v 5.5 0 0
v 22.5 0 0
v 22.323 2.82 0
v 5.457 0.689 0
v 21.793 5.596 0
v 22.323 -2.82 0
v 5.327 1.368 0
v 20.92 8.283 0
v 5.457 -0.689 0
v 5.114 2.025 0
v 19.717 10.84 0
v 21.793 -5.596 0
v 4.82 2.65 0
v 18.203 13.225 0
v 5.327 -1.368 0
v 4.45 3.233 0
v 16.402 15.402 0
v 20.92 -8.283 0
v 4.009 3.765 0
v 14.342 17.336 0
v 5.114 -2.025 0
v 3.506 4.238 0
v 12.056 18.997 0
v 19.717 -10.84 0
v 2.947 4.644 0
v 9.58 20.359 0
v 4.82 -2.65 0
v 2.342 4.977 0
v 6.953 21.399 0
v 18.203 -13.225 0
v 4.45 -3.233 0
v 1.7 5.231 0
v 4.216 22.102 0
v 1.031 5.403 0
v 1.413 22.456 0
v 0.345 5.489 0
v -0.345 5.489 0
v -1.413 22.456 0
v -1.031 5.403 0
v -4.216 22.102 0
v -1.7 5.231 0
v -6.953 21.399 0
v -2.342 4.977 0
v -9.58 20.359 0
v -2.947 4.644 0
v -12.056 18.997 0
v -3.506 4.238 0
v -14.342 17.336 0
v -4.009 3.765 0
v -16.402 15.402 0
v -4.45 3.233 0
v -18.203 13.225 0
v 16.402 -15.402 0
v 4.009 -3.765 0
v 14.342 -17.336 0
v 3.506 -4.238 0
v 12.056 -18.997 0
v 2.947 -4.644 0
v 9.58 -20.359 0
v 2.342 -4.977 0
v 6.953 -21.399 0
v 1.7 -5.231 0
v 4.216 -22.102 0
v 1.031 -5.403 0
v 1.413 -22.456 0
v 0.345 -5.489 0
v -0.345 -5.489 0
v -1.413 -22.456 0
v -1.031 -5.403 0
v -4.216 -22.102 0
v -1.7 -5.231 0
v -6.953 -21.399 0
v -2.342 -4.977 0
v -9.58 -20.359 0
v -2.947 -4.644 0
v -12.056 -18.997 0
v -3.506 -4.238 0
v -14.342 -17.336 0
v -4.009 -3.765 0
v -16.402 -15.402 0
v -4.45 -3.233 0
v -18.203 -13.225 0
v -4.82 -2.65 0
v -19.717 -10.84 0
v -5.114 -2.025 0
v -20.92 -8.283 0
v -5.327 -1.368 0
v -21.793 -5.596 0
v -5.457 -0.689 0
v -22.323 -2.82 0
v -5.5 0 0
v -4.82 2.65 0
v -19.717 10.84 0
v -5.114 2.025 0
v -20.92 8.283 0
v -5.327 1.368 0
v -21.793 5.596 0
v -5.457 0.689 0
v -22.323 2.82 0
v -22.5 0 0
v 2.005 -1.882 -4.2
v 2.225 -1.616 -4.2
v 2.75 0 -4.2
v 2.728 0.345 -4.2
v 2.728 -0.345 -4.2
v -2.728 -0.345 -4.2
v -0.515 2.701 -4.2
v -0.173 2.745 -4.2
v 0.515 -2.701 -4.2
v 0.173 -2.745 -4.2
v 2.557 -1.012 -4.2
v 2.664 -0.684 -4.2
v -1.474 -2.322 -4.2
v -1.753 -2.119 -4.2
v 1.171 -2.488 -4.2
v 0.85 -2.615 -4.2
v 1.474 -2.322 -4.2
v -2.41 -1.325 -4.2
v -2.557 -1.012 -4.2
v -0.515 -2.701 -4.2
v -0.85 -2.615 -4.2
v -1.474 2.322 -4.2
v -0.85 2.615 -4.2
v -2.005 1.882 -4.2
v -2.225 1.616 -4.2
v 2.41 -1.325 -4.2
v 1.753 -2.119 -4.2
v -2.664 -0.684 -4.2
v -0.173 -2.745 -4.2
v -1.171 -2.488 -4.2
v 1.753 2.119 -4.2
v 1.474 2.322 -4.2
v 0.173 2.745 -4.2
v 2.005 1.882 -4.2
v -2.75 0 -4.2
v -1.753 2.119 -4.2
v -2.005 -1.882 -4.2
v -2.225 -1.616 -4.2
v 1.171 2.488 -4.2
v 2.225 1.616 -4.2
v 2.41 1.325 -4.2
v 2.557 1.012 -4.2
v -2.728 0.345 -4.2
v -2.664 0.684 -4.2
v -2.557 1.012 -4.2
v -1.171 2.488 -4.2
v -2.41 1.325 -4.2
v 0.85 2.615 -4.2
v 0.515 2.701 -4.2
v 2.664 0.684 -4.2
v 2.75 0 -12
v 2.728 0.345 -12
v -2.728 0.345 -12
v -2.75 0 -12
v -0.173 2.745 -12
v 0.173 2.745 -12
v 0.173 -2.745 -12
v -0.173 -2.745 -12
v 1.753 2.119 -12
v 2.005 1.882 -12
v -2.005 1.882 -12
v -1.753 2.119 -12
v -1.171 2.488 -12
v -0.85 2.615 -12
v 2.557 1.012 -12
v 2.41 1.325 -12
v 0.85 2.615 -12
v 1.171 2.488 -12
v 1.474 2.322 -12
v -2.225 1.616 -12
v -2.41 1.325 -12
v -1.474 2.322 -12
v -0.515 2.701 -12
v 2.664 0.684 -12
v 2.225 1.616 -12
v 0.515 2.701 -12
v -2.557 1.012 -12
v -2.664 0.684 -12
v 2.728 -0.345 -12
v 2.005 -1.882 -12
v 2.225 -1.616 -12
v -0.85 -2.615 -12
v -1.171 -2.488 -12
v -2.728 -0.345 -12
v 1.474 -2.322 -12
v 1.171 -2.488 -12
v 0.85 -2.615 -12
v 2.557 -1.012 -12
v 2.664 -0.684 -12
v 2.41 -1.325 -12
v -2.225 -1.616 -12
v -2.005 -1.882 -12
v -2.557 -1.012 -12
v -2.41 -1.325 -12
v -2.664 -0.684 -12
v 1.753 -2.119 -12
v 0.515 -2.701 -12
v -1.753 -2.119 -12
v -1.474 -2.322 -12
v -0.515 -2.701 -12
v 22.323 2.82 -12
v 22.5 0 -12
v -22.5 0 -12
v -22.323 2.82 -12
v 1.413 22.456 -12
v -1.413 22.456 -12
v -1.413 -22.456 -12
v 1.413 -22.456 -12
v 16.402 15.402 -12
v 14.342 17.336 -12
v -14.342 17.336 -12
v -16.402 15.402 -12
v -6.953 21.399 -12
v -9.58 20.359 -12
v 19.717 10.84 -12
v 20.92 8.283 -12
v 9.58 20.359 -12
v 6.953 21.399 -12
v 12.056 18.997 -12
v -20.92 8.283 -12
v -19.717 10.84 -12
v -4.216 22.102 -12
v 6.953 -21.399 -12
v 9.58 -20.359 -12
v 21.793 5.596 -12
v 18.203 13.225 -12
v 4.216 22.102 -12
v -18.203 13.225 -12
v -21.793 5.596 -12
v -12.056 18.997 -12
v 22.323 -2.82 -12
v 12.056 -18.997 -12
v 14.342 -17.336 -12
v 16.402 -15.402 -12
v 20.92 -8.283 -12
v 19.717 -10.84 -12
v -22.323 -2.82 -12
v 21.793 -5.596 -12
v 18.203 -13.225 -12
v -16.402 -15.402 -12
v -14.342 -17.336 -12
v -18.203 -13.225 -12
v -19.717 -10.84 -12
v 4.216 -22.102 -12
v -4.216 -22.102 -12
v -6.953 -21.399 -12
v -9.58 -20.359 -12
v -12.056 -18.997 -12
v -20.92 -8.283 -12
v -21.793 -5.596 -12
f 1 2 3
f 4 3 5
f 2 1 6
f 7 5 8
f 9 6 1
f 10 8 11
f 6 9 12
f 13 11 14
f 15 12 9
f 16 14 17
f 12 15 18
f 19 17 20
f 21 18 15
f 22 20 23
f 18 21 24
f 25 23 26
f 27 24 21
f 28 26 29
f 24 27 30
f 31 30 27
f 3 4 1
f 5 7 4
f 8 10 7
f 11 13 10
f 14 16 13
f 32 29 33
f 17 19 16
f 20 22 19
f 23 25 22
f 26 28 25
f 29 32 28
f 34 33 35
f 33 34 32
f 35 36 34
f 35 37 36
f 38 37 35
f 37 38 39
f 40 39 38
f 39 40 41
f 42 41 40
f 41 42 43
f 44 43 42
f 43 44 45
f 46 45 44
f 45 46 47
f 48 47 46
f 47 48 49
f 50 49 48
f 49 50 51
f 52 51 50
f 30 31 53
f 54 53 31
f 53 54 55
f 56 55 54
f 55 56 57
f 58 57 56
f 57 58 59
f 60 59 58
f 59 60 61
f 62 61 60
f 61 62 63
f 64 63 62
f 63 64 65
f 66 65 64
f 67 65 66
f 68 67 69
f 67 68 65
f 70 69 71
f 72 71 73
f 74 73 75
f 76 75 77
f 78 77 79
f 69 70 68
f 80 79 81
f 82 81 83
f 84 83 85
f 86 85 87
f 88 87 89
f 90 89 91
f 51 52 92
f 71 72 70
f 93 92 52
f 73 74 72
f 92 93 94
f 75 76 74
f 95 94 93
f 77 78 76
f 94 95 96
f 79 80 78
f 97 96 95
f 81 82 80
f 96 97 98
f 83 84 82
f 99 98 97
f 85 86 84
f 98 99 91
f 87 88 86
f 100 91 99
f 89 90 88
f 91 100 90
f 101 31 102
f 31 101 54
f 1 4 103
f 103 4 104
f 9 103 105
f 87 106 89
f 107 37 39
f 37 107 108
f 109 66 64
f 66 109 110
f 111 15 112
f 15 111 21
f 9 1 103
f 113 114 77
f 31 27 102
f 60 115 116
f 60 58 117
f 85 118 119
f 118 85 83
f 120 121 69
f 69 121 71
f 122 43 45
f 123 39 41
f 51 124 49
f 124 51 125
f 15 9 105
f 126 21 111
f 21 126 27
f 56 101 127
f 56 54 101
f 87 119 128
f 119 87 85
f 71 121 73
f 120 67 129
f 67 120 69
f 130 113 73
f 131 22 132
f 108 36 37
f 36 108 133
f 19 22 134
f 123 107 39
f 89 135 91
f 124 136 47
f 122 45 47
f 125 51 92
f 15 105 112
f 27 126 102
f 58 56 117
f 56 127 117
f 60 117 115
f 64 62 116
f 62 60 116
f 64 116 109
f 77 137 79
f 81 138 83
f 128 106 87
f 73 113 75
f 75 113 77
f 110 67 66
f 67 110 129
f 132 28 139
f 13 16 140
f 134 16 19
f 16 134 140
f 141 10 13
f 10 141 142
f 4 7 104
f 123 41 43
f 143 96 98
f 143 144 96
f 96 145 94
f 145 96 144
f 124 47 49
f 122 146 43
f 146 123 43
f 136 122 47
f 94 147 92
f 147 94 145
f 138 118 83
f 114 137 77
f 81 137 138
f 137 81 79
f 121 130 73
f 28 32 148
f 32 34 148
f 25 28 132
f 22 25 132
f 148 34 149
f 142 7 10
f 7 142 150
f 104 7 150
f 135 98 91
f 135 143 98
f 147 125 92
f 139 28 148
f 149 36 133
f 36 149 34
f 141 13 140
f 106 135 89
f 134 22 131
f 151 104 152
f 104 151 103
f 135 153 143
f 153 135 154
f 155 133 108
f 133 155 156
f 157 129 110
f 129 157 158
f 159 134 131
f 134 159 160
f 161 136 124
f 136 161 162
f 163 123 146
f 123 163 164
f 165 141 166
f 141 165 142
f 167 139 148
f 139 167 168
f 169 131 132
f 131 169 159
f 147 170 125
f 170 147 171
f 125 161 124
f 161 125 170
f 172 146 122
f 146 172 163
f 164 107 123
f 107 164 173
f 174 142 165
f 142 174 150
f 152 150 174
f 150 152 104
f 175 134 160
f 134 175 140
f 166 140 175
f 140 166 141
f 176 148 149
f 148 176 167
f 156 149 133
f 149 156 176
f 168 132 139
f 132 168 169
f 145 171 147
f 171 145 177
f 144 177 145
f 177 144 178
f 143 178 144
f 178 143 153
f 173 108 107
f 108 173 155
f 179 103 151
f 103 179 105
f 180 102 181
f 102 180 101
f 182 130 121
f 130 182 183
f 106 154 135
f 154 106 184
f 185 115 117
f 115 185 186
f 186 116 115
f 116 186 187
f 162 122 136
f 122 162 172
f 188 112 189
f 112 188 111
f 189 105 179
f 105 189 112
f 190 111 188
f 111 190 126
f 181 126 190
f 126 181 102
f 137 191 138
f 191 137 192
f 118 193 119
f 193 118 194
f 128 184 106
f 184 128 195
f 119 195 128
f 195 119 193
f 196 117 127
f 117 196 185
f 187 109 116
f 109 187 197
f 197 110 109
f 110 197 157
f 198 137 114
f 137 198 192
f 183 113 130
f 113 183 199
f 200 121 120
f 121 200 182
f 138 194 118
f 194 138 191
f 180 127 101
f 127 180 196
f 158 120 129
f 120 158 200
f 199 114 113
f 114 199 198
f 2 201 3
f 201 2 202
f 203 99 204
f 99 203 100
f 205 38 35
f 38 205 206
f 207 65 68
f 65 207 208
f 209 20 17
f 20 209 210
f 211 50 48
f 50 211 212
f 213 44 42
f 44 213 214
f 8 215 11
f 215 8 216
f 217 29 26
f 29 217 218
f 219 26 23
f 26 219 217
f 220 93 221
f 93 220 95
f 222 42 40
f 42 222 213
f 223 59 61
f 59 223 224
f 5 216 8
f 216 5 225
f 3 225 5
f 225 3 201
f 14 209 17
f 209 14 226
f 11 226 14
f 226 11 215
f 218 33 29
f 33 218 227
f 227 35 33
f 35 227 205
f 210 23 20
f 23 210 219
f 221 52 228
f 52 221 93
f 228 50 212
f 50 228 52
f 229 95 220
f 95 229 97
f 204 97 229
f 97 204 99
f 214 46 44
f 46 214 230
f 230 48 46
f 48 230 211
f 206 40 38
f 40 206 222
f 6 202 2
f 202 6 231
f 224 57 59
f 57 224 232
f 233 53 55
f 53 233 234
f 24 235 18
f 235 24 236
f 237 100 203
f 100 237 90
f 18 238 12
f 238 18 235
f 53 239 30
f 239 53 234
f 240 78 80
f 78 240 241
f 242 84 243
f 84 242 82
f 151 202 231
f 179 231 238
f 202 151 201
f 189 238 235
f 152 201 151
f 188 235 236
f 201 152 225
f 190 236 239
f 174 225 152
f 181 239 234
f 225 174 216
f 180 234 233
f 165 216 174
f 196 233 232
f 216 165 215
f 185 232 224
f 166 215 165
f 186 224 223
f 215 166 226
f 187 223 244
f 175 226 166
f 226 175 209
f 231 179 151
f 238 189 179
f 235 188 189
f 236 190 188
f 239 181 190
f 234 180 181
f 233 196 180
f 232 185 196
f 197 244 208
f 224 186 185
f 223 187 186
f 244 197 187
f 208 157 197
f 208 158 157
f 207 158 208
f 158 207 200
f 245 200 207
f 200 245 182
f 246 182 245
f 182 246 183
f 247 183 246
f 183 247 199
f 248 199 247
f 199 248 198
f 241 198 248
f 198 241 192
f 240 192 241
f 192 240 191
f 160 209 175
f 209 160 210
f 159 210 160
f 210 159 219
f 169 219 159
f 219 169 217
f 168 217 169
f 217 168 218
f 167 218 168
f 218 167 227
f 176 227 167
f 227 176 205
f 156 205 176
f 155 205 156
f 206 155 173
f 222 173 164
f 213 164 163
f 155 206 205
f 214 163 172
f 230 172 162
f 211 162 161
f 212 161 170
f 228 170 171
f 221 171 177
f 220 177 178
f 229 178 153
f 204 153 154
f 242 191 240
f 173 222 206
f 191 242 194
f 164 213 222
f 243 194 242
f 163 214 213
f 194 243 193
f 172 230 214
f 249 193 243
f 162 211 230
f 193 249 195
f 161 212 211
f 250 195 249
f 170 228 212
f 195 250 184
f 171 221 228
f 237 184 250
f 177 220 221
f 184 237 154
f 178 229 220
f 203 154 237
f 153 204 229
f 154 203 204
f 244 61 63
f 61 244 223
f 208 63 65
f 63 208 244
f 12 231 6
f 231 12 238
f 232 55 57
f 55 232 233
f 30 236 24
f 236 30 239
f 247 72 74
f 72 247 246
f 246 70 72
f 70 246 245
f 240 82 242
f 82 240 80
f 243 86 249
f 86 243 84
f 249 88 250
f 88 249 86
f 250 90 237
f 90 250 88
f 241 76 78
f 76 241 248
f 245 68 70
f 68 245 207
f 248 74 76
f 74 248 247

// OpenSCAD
$fn = 50;

difference() {
	union() {
		translate(v = [0, 0, -12.0]) {
			cylinder(h = 12, r = 22.5);
		}
	}
	union() {
		translate(v = [0, 0, 0]) {
			rotate(a = [0, 0, 0]) {
				difference() {
					union() {
						translate(v = [0, 0, -15.0]) {
							cylinder(h = 15, r = 2.25);
						}
						translate(v = [0, 0, -4.2]) {
							cylinder(h = 4.2, r1 = 2.75, r2 = 5.5);
						}
						translate(v = [0, 0, -15.0]) {
							cylinder(h = 15, r = 2.75);
						}
						translate(v = [0, 0, -15.0]) {
							cylinder(h = 15, r = 2.25);
						}
					}
					union();
				}
			}
		}
	}
}
